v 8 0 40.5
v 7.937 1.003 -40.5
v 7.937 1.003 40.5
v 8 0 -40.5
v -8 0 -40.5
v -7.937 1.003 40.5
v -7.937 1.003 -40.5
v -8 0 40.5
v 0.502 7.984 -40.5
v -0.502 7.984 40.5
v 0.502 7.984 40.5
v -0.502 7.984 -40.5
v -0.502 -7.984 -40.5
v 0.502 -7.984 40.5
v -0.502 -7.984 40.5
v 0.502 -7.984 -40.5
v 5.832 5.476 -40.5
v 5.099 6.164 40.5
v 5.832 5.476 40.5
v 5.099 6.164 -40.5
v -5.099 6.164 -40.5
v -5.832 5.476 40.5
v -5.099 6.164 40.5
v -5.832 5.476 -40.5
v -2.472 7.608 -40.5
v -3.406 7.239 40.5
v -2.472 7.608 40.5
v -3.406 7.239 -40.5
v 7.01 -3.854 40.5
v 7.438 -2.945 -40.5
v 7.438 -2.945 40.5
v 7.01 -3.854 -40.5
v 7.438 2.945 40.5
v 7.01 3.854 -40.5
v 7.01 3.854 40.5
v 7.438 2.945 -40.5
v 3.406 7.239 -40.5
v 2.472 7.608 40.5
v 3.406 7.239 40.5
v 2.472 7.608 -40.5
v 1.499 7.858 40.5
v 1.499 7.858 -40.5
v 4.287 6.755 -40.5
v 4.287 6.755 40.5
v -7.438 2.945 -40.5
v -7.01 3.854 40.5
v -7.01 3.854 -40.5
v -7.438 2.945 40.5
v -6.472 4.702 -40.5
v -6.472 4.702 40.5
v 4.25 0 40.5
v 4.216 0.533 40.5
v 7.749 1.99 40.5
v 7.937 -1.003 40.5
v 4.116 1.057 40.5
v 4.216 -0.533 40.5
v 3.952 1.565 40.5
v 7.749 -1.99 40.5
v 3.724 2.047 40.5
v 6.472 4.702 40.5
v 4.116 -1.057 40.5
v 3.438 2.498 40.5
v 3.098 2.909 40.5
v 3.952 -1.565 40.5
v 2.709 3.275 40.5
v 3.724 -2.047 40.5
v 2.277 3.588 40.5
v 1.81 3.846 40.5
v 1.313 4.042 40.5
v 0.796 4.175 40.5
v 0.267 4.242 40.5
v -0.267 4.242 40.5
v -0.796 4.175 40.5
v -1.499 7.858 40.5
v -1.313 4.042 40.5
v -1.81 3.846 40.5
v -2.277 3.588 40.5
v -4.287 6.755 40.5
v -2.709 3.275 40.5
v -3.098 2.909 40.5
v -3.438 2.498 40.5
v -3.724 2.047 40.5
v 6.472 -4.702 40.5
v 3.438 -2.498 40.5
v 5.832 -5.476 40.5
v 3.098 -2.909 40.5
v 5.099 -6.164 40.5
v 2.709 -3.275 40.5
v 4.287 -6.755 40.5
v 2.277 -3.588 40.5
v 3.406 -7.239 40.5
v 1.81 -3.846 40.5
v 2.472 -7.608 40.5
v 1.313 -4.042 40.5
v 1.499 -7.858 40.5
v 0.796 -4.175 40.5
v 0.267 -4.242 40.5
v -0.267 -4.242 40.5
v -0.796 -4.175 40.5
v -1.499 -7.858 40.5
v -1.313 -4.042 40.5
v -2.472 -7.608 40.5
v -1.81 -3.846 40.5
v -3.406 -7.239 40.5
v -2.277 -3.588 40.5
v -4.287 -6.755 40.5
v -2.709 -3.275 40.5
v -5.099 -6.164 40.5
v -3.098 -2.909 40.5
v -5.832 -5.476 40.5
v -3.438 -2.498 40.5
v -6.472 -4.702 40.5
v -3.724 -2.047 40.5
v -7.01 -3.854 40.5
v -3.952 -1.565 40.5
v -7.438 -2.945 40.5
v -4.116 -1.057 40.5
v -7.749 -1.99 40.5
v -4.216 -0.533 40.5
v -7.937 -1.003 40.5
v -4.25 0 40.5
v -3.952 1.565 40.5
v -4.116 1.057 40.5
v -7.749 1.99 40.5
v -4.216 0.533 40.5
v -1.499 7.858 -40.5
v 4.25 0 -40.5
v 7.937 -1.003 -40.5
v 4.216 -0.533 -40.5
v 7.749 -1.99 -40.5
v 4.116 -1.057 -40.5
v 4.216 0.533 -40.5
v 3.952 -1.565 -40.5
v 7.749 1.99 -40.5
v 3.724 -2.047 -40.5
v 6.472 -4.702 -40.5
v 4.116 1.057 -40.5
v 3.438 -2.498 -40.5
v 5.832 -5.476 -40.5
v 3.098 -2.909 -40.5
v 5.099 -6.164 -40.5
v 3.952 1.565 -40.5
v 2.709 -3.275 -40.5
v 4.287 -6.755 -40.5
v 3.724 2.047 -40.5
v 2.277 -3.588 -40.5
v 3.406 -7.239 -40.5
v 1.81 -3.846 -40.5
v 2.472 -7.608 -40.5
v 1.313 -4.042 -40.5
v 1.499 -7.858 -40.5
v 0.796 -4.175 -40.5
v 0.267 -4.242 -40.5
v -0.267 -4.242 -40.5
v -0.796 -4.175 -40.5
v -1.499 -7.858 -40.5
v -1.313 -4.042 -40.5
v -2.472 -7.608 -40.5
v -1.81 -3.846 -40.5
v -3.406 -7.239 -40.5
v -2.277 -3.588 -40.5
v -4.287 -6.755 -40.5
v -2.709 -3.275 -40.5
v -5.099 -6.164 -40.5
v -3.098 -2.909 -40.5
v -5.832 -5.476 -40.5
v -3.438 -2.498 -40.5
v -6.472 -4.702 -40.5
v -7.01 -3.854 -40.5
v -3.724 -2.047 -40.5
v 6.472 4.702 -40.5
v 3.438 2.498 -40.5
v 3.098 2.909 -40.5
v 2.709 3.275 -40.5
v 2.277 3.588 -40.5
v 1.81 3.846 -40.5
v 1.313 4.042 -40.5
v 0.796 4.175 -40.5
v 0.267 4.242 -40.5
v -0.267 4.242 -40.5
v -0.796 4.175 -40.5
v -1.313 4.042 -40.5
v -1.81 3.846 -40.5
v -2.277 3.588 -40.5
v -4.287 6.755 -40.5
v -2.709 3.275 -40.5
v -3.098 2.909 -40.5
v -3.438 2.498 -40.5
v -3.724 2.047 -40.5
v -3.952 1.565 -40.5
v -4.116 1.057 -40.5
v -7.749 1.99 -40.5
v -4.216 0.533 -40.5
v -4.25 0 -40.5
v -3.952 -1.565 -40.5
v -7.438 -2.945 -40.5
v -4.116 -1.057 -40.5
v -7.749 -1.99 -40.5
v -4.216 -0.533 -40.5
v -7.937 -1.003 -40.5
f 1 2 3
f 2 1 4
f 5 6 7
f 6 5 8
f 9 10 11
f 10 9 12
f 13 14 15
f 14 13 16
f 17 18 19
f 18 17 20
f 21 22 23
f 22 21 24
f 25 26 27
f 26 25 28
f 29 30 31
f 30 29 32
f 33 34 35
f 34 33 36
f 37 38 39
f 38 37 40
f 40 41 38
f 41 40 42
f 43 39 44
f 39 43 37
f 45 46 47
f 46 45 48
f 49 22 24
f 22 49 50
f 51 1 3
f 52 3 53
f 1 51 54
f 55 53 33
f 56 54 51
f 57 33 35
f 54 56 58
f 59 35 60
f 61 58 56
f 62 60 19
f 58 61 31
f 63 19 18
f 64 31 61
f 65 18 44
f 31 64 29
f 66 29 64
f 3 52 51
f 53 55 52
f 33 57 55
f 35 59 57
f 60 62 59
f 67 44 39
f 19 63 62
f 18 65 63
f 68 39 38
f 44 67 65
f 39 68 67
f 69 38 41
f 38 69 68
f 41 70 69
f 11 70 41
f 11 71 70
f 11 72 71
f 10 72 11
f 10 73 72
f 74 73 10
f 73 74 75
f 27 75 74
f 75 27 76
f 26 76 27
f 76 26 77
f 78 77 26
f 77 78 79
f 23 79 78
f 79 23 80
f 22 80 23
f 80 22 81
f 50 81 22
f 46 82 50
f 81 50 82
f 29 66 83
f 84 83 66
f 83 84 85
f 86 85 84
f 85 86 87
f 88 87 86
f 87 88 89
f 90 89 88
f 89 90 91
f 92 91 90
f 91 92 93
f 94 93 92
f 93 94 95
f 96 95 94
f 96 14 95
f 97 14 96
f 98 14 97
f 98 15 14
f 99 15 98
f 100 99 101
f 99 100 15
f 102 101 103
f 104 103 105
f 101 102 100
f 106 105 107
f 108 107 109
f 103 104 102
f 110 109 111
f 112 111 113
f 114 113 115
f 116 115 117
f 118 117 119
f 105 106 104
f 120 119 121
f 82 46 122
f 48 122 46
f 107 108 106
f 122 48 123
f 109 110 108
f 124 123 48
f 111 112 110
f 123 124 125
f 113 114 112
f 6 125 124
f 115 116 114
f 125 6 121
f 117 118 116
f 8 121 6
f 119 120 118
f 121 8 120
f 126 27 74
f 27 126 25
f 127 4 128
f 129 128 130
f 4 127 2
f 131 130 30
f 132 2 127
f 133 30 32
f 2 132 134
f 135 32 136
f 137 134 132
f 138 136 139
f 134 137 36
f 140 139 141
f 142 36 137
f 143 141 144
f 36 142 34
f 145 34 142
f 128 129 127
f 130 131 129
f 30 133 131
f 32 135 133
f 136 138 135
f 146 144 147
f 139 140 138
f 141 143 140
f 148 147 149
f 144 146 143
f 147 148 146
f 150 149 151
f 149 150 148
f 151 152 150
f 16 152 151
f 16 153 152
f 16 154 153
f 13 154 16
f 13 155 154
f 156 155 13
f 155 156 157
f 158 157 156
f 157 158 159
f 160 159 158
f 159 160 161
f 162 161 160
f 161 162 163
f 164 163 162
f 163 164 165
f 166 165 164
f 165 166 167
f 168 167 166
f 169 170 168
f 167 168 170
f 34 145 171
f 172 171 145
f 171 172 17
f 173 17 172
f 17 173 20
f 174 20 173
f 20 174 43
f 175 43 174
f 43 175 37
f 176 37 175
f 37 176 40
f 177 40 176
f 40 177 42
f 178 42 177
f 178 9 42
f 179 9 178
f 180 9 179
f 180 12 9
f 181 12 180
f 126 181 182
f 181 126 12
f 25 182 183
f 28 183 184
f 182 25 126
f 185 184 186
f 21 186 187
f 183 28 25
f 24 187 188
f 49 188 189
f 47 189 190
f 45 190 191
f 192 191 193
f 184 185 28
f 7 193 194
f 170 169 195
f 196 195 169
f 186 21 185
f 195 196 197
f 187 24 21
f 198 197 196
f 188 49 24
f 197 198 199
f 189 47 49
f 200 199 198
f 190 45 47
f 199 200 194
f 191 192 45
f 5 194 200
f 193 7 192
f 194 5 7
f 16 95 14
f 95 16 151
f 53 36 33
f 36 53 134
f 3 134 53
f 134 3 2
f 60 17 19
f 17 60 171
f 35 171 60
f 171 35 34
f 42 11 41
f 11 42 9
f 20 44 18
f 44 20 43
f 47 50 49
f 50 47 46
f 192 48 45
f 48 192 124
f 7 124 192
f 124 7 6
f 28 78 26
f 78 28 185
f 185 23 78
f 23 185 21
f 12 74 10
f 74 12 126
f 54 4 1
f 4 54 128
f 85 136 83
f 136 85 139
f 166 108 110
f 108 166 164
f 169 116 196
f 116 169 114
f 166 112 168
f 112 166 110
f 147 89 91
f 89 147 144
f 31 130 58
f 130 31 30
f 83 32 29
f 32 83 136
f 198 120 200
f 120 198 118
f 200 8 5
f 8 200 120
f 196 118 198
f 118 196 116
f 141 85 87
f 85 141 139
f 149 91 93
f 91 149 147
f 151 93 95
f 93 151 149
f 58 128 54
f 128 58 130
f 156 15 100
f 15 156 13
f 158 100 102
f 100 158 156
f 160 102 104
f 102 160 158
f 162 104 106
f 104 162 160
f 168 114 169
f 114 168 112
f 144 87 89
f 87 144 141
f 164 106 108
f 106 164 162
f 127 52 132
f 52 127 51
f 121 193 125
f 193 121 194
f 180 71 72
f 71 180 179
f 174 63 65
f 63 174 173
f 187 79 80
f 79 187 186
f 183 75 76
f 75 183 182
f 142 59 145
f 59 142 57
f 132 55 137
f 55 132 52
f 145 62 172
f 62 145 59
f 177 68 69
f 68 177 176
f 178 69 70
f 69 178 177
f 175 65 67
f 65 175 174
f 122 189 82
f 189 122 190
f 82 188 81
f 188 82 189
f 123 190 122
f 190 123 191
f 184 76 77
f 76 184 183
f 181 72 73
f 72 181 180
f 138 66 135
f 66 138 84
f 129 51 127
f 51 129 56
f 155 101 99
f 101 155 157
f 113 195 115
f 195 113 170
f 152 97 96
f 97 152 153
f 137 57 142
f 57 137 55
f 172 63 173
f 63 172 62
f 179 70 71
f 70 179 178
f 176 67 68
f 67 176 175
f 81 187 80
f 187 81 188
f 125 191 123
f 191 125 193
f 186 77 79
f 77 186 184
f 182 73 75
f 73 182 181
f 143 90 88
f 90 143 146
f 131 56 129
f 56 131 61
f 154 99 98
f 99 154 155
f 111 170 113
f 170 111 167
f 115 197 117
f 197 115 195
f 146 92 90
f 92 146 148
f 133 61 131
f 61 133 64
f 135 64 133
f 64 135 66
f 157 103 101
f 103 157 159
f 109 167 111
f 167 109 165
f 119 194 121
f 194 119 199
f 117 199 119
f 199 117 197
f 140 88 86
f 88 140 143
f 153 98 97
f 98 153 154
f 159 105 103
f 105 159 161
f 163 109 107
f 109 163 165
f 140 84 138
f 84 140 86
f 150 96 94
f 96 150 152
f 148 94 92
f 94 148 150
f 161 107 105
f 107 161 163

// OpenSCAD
$fn = 50;


difference() {
	union() {
		translate(v = [0, 0, -40.5000000000]) {
			cylinder(h = 81, r = 8.0000000000);
		}
	}
	union() {
		translate(v = [0, 0, -100.0000000000]) {
			cylinder(h = 200, r = 4.2500000000);
		}
	}
}
